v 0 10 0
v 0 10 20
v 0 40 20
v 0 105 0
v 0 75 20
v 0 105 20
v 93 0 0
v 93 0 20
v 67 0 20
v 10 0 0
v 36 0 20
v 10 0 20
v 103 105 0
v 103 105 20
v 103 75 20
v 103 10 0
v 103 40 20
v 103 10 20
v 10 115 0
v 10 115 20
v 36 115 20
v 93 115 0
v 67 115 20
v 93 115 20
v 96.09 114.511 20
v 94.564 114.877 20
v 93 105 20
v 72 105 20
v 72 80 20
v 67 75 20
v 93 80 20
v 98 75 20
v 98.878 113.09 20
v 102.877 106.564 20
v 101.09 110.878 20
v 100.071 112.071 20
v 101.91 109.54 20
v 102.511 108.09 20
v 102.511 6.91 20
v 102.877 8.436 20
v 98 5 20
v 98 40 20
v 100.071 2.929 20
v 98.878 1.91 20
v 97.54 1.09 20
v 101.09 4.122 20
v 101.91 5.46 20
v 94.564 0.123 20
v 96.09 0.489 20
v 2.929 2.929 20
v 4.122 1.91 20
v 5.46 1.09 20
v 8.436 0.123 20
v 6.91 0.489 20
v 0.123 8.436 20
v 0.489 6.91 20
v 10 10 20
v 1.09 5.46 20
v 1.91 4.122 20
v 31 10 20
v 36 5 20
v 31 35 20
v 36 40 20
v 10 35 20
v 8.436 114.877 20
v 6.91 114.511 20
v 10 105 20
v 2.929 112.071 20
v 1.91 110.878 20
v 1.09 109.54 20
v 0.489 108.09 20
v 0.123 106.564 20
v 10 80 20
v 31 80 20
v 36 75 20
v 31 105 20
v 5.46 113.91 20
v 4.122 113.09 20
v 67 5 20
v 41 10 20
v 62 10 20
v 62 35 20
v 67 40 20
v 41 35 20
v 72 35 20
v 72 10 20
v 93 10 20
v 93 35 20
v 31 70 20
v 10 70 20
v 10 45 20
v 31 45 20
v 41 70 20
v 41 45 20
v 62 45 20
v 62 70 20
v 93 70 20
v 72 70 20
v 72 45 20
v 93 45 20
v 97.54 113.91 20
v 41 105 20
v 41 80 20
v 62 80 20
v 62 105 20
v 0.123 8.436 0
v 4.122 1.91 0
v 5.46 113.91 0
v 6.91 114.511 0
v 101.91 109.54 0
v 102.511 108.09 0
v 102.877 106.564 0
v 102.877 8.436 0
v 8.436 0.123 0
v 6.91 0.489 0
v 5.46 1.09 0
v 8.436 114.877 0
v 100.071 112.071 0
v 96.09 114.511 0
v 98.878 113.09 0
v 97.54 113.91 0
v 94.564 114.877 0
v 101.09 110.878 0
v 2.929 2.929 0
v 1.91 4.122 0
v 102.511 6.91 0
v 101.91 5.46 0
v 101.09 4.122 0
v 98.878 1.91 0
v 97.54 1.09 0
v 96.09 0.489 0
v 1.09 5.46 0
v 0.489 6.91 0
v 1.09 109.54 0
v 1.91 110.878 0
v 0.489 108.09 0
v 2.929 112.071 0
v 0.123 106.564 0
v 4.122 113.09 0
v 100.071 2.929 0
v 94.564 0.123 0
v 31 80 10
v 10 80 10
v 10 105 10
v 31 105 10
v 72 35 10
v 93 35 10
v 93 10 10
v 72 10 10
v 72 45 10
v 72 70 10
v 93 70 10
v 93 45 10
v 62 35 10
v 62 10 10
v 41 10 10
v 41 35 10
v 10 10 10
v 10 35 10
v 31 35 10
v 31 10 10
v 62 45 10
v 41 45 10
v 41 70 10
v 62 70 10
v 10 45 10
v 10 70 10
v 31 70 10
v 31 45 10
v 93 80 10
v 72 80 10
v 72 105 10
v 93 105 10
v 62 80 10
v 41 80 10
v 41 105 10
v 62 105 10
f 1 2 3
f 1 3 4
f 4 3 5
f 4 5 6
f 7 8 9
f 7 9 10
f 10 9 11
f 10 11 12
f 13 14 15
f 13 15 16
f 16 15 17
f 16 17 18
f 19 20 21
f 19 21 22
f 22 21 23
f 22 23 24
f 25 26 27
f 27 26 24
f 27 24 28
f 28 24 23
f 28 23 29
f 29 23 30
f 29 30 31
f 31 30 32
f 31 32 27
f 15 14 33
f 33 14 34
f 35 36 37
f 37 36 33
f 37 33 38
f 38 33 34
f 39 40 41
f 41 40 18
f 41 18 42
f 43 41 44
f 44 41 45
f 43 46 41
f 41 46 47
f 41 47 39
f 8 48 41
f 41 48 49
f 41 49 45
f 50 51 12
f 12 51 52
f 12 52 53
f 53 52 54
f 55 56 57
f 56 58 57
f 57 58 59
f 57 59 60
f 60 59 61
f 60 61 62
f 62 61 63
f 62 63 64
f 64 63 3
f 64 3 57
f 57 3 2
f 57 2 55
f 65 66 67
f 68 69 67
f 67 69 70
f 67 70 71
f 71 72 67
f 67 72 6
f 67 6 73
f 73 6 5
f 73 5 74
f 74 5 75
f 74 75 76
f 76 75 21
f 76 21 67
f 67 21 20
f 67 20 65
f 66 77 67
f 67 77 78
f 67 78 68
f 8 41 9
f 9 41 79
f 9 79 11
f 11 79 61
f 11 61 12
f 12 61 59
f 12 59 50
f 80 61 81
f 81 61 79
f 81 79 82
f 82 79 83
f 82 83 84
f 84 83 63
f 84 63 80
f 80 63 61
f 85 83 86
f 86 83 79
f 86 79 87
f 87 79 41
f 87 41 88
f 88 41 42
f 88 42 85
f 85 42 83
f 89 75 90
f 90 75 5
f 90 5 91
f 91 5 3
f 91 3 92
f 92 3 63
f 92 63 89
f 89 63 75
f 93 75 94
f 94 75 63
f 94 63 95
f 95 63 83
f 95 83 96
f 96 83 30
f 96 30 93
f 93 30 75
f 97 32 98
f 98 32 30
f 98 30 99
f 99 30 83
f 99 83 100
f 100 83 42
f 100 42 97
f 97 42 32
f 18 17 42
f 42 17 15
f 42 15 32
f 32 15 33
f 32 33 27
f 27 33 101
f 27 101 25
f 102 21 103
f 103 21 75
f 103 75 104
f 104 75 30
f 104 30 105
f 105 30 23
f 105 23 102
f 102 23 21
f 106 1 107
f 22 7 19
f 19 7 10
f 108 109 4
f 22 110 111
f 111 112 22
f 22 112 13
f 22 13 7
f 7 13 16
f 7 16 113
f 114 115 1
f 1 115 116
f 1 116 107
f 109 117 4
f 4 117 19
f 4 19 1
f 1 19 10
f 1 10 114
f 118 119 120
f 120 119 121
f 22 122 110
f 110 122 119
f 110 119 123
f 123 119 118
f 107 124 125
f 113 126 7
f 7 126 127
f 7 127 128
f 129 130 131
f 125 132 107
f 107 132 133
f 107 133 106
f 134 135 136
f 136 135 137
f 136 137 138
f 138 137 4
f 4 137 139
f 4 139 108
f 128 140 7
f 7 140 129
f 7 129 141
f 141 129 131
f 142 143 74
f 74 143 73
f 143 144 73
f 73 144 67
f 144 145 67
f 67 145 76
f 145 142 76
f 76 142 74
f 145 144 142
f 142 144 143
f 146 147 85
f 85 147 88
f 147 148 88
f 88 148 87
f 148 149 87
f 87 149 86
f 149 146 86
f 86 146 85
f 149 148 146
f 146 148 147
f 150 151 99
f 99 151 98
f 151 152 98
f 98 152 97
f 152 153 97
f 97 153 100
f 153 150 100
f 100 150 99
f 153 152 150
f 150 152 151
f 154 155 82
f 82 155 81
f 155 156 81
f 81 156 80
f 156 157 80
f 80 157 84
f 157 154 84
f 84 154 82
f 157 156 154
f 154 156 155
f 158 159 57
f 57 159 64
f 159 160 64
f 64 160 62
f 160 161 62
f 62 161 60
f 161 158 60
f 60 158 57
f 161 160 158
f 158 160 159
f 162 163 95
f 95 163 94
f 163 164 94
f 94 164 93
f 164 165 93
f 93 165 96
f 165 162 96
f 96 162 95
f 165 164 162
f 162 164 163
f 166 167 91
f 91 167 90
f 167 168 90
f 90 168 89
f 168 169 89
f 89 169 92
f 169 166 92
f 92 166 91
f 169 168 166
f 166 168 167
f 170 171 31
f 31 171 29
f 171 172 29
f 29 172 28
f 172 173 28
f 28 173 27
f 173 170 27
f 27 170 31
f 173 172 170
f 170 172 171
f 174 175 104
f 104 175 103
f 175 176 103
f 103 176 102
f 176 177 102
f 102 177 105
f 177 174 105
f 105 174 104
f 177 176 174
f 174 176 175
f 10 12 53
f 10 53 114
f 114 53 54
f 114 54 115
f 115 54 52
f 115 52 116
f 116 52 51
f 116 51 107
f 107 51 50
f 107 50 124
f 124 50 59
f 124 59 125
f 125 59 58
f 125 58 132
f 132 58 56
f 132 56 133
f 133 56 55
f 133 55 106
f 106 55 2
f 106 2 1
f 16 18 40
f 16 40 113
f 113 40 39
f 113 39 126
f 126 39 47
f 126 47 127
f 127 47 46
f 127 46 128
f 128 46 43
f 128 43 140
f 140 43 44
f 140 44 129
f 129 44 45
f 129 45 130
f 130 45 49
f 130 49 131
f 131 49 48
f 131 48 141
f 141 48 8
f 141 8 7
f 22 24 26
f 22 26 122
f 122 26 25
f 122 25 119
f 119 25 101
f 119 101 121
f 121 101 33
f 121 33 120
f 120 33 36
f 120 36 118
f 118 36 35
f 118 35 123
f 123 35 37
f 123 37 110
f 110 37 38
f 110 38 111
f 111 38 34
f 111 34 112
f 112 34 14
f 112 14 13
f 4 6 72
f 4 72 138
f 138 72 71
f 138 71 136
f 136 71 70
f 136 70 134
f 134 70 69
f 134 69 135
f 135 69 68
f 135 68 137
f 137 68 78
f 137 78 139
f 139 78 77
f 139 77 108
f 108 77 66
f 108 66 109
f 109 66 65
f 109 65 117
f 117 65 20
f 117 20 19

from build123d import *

# Parameters (mm, degrees)
SKETCH1_W           = 103
SKETCH1_H           = 115
BOSS_EXTRUDE2_DEPTH = 20
SKETCH3_W           = 21
SKETCH3_H           = 25
CUT_EXTRUDE1_DEPTH  = 10
CUT_EXTRUDE2_DEPTH  = 46


with BuildPart() as part:
    # Sketch1 → Boss-Extrude2 (new body)
    with BuildSketch(Plane.XY):
        with Locations((51.5, 57.5)):
            Rectangle(SKETCH1_W, SKETCH1_H)
    extrude(amount=BOSS_EXTRUDE2_DEPTH)

    # Sketch3 → Cut-Extrude1 (cut)
    with BuildSketch(Plane.XY.offset(20)):
        with Locations((20.5, 92.5)):
            Rectangle(SKETCH3_W, SKETCH3_H)
        with Locations((51.5, 92.5)):
            Rectangle(SKETCH3_W, SKETCH3_H)
        with Locations((82.5, 92.5)):
            Rectangle(SKETCH3_W, SKETCH3_H)
        Polygon((10, 70), (10, 54.37934433), (10, 45), (31, 45), (31, 70), align=None)
        with Locations((51.5, 57.5)):
            Rectangle(SKETCH3_W, SKETCH3_H)
        Polygon((10, 35), (10, 17.462651727), (10, 10), (31, 10), (31, 35), align=None)
        with Locations((51.5, 22.5)):
            Rectangle(SKETCH3_W, SKETCH3_H)
        with Locations((82.5, 22.5)):
            Rectangle(SKETCH3_W, SKETCH3_H)
        with Locations((82.5, 57.5)):
            Rectangle(SKETCH3_W, SKETCH3_H)
    extrude(amount=-CUT_EXTRUDE1_DEPTH, mode=Mode.SUBTRACT)

    # Sketch4 → Cut-Extrude2 (cut)
    with BuildSketch(Plane.XY.offset(20)):
        with BuildLine():
            Line((0, 105), (0, 115))
            Line((0, 115), (10, 115))
            ThreePointArc((10, 115), (2.928932188, 112.071067812), (0, 105))
        make_face()
        with BuildLine():
            Line((93, 115), (103, 115))
            Line((103, 115), (103, 105))
            ThreePointArc((103, 105), (100.071067812, 112.071067812), (93, 115))
        make_face()
        with BuildLine():
            Line((103, 10), (103, 0))
            Line((103, 0), (93, 0))
            ThreePointArc((93, 0), (100.071067812, 2.928932188), (103, 10))
        make_face()
        with BuildLine():
            Line((10, 0), (0, 0))
            Line((0, 0), (0, 10))
            ThreePointArc((0, 10), (2.928932188, 2.928932188), (10, 0))
        make_face()
    extrude(amount=-CUT_EXTRUDE2_DEPTH, mode=Mode.SUBTRACT)


solid = part.part
